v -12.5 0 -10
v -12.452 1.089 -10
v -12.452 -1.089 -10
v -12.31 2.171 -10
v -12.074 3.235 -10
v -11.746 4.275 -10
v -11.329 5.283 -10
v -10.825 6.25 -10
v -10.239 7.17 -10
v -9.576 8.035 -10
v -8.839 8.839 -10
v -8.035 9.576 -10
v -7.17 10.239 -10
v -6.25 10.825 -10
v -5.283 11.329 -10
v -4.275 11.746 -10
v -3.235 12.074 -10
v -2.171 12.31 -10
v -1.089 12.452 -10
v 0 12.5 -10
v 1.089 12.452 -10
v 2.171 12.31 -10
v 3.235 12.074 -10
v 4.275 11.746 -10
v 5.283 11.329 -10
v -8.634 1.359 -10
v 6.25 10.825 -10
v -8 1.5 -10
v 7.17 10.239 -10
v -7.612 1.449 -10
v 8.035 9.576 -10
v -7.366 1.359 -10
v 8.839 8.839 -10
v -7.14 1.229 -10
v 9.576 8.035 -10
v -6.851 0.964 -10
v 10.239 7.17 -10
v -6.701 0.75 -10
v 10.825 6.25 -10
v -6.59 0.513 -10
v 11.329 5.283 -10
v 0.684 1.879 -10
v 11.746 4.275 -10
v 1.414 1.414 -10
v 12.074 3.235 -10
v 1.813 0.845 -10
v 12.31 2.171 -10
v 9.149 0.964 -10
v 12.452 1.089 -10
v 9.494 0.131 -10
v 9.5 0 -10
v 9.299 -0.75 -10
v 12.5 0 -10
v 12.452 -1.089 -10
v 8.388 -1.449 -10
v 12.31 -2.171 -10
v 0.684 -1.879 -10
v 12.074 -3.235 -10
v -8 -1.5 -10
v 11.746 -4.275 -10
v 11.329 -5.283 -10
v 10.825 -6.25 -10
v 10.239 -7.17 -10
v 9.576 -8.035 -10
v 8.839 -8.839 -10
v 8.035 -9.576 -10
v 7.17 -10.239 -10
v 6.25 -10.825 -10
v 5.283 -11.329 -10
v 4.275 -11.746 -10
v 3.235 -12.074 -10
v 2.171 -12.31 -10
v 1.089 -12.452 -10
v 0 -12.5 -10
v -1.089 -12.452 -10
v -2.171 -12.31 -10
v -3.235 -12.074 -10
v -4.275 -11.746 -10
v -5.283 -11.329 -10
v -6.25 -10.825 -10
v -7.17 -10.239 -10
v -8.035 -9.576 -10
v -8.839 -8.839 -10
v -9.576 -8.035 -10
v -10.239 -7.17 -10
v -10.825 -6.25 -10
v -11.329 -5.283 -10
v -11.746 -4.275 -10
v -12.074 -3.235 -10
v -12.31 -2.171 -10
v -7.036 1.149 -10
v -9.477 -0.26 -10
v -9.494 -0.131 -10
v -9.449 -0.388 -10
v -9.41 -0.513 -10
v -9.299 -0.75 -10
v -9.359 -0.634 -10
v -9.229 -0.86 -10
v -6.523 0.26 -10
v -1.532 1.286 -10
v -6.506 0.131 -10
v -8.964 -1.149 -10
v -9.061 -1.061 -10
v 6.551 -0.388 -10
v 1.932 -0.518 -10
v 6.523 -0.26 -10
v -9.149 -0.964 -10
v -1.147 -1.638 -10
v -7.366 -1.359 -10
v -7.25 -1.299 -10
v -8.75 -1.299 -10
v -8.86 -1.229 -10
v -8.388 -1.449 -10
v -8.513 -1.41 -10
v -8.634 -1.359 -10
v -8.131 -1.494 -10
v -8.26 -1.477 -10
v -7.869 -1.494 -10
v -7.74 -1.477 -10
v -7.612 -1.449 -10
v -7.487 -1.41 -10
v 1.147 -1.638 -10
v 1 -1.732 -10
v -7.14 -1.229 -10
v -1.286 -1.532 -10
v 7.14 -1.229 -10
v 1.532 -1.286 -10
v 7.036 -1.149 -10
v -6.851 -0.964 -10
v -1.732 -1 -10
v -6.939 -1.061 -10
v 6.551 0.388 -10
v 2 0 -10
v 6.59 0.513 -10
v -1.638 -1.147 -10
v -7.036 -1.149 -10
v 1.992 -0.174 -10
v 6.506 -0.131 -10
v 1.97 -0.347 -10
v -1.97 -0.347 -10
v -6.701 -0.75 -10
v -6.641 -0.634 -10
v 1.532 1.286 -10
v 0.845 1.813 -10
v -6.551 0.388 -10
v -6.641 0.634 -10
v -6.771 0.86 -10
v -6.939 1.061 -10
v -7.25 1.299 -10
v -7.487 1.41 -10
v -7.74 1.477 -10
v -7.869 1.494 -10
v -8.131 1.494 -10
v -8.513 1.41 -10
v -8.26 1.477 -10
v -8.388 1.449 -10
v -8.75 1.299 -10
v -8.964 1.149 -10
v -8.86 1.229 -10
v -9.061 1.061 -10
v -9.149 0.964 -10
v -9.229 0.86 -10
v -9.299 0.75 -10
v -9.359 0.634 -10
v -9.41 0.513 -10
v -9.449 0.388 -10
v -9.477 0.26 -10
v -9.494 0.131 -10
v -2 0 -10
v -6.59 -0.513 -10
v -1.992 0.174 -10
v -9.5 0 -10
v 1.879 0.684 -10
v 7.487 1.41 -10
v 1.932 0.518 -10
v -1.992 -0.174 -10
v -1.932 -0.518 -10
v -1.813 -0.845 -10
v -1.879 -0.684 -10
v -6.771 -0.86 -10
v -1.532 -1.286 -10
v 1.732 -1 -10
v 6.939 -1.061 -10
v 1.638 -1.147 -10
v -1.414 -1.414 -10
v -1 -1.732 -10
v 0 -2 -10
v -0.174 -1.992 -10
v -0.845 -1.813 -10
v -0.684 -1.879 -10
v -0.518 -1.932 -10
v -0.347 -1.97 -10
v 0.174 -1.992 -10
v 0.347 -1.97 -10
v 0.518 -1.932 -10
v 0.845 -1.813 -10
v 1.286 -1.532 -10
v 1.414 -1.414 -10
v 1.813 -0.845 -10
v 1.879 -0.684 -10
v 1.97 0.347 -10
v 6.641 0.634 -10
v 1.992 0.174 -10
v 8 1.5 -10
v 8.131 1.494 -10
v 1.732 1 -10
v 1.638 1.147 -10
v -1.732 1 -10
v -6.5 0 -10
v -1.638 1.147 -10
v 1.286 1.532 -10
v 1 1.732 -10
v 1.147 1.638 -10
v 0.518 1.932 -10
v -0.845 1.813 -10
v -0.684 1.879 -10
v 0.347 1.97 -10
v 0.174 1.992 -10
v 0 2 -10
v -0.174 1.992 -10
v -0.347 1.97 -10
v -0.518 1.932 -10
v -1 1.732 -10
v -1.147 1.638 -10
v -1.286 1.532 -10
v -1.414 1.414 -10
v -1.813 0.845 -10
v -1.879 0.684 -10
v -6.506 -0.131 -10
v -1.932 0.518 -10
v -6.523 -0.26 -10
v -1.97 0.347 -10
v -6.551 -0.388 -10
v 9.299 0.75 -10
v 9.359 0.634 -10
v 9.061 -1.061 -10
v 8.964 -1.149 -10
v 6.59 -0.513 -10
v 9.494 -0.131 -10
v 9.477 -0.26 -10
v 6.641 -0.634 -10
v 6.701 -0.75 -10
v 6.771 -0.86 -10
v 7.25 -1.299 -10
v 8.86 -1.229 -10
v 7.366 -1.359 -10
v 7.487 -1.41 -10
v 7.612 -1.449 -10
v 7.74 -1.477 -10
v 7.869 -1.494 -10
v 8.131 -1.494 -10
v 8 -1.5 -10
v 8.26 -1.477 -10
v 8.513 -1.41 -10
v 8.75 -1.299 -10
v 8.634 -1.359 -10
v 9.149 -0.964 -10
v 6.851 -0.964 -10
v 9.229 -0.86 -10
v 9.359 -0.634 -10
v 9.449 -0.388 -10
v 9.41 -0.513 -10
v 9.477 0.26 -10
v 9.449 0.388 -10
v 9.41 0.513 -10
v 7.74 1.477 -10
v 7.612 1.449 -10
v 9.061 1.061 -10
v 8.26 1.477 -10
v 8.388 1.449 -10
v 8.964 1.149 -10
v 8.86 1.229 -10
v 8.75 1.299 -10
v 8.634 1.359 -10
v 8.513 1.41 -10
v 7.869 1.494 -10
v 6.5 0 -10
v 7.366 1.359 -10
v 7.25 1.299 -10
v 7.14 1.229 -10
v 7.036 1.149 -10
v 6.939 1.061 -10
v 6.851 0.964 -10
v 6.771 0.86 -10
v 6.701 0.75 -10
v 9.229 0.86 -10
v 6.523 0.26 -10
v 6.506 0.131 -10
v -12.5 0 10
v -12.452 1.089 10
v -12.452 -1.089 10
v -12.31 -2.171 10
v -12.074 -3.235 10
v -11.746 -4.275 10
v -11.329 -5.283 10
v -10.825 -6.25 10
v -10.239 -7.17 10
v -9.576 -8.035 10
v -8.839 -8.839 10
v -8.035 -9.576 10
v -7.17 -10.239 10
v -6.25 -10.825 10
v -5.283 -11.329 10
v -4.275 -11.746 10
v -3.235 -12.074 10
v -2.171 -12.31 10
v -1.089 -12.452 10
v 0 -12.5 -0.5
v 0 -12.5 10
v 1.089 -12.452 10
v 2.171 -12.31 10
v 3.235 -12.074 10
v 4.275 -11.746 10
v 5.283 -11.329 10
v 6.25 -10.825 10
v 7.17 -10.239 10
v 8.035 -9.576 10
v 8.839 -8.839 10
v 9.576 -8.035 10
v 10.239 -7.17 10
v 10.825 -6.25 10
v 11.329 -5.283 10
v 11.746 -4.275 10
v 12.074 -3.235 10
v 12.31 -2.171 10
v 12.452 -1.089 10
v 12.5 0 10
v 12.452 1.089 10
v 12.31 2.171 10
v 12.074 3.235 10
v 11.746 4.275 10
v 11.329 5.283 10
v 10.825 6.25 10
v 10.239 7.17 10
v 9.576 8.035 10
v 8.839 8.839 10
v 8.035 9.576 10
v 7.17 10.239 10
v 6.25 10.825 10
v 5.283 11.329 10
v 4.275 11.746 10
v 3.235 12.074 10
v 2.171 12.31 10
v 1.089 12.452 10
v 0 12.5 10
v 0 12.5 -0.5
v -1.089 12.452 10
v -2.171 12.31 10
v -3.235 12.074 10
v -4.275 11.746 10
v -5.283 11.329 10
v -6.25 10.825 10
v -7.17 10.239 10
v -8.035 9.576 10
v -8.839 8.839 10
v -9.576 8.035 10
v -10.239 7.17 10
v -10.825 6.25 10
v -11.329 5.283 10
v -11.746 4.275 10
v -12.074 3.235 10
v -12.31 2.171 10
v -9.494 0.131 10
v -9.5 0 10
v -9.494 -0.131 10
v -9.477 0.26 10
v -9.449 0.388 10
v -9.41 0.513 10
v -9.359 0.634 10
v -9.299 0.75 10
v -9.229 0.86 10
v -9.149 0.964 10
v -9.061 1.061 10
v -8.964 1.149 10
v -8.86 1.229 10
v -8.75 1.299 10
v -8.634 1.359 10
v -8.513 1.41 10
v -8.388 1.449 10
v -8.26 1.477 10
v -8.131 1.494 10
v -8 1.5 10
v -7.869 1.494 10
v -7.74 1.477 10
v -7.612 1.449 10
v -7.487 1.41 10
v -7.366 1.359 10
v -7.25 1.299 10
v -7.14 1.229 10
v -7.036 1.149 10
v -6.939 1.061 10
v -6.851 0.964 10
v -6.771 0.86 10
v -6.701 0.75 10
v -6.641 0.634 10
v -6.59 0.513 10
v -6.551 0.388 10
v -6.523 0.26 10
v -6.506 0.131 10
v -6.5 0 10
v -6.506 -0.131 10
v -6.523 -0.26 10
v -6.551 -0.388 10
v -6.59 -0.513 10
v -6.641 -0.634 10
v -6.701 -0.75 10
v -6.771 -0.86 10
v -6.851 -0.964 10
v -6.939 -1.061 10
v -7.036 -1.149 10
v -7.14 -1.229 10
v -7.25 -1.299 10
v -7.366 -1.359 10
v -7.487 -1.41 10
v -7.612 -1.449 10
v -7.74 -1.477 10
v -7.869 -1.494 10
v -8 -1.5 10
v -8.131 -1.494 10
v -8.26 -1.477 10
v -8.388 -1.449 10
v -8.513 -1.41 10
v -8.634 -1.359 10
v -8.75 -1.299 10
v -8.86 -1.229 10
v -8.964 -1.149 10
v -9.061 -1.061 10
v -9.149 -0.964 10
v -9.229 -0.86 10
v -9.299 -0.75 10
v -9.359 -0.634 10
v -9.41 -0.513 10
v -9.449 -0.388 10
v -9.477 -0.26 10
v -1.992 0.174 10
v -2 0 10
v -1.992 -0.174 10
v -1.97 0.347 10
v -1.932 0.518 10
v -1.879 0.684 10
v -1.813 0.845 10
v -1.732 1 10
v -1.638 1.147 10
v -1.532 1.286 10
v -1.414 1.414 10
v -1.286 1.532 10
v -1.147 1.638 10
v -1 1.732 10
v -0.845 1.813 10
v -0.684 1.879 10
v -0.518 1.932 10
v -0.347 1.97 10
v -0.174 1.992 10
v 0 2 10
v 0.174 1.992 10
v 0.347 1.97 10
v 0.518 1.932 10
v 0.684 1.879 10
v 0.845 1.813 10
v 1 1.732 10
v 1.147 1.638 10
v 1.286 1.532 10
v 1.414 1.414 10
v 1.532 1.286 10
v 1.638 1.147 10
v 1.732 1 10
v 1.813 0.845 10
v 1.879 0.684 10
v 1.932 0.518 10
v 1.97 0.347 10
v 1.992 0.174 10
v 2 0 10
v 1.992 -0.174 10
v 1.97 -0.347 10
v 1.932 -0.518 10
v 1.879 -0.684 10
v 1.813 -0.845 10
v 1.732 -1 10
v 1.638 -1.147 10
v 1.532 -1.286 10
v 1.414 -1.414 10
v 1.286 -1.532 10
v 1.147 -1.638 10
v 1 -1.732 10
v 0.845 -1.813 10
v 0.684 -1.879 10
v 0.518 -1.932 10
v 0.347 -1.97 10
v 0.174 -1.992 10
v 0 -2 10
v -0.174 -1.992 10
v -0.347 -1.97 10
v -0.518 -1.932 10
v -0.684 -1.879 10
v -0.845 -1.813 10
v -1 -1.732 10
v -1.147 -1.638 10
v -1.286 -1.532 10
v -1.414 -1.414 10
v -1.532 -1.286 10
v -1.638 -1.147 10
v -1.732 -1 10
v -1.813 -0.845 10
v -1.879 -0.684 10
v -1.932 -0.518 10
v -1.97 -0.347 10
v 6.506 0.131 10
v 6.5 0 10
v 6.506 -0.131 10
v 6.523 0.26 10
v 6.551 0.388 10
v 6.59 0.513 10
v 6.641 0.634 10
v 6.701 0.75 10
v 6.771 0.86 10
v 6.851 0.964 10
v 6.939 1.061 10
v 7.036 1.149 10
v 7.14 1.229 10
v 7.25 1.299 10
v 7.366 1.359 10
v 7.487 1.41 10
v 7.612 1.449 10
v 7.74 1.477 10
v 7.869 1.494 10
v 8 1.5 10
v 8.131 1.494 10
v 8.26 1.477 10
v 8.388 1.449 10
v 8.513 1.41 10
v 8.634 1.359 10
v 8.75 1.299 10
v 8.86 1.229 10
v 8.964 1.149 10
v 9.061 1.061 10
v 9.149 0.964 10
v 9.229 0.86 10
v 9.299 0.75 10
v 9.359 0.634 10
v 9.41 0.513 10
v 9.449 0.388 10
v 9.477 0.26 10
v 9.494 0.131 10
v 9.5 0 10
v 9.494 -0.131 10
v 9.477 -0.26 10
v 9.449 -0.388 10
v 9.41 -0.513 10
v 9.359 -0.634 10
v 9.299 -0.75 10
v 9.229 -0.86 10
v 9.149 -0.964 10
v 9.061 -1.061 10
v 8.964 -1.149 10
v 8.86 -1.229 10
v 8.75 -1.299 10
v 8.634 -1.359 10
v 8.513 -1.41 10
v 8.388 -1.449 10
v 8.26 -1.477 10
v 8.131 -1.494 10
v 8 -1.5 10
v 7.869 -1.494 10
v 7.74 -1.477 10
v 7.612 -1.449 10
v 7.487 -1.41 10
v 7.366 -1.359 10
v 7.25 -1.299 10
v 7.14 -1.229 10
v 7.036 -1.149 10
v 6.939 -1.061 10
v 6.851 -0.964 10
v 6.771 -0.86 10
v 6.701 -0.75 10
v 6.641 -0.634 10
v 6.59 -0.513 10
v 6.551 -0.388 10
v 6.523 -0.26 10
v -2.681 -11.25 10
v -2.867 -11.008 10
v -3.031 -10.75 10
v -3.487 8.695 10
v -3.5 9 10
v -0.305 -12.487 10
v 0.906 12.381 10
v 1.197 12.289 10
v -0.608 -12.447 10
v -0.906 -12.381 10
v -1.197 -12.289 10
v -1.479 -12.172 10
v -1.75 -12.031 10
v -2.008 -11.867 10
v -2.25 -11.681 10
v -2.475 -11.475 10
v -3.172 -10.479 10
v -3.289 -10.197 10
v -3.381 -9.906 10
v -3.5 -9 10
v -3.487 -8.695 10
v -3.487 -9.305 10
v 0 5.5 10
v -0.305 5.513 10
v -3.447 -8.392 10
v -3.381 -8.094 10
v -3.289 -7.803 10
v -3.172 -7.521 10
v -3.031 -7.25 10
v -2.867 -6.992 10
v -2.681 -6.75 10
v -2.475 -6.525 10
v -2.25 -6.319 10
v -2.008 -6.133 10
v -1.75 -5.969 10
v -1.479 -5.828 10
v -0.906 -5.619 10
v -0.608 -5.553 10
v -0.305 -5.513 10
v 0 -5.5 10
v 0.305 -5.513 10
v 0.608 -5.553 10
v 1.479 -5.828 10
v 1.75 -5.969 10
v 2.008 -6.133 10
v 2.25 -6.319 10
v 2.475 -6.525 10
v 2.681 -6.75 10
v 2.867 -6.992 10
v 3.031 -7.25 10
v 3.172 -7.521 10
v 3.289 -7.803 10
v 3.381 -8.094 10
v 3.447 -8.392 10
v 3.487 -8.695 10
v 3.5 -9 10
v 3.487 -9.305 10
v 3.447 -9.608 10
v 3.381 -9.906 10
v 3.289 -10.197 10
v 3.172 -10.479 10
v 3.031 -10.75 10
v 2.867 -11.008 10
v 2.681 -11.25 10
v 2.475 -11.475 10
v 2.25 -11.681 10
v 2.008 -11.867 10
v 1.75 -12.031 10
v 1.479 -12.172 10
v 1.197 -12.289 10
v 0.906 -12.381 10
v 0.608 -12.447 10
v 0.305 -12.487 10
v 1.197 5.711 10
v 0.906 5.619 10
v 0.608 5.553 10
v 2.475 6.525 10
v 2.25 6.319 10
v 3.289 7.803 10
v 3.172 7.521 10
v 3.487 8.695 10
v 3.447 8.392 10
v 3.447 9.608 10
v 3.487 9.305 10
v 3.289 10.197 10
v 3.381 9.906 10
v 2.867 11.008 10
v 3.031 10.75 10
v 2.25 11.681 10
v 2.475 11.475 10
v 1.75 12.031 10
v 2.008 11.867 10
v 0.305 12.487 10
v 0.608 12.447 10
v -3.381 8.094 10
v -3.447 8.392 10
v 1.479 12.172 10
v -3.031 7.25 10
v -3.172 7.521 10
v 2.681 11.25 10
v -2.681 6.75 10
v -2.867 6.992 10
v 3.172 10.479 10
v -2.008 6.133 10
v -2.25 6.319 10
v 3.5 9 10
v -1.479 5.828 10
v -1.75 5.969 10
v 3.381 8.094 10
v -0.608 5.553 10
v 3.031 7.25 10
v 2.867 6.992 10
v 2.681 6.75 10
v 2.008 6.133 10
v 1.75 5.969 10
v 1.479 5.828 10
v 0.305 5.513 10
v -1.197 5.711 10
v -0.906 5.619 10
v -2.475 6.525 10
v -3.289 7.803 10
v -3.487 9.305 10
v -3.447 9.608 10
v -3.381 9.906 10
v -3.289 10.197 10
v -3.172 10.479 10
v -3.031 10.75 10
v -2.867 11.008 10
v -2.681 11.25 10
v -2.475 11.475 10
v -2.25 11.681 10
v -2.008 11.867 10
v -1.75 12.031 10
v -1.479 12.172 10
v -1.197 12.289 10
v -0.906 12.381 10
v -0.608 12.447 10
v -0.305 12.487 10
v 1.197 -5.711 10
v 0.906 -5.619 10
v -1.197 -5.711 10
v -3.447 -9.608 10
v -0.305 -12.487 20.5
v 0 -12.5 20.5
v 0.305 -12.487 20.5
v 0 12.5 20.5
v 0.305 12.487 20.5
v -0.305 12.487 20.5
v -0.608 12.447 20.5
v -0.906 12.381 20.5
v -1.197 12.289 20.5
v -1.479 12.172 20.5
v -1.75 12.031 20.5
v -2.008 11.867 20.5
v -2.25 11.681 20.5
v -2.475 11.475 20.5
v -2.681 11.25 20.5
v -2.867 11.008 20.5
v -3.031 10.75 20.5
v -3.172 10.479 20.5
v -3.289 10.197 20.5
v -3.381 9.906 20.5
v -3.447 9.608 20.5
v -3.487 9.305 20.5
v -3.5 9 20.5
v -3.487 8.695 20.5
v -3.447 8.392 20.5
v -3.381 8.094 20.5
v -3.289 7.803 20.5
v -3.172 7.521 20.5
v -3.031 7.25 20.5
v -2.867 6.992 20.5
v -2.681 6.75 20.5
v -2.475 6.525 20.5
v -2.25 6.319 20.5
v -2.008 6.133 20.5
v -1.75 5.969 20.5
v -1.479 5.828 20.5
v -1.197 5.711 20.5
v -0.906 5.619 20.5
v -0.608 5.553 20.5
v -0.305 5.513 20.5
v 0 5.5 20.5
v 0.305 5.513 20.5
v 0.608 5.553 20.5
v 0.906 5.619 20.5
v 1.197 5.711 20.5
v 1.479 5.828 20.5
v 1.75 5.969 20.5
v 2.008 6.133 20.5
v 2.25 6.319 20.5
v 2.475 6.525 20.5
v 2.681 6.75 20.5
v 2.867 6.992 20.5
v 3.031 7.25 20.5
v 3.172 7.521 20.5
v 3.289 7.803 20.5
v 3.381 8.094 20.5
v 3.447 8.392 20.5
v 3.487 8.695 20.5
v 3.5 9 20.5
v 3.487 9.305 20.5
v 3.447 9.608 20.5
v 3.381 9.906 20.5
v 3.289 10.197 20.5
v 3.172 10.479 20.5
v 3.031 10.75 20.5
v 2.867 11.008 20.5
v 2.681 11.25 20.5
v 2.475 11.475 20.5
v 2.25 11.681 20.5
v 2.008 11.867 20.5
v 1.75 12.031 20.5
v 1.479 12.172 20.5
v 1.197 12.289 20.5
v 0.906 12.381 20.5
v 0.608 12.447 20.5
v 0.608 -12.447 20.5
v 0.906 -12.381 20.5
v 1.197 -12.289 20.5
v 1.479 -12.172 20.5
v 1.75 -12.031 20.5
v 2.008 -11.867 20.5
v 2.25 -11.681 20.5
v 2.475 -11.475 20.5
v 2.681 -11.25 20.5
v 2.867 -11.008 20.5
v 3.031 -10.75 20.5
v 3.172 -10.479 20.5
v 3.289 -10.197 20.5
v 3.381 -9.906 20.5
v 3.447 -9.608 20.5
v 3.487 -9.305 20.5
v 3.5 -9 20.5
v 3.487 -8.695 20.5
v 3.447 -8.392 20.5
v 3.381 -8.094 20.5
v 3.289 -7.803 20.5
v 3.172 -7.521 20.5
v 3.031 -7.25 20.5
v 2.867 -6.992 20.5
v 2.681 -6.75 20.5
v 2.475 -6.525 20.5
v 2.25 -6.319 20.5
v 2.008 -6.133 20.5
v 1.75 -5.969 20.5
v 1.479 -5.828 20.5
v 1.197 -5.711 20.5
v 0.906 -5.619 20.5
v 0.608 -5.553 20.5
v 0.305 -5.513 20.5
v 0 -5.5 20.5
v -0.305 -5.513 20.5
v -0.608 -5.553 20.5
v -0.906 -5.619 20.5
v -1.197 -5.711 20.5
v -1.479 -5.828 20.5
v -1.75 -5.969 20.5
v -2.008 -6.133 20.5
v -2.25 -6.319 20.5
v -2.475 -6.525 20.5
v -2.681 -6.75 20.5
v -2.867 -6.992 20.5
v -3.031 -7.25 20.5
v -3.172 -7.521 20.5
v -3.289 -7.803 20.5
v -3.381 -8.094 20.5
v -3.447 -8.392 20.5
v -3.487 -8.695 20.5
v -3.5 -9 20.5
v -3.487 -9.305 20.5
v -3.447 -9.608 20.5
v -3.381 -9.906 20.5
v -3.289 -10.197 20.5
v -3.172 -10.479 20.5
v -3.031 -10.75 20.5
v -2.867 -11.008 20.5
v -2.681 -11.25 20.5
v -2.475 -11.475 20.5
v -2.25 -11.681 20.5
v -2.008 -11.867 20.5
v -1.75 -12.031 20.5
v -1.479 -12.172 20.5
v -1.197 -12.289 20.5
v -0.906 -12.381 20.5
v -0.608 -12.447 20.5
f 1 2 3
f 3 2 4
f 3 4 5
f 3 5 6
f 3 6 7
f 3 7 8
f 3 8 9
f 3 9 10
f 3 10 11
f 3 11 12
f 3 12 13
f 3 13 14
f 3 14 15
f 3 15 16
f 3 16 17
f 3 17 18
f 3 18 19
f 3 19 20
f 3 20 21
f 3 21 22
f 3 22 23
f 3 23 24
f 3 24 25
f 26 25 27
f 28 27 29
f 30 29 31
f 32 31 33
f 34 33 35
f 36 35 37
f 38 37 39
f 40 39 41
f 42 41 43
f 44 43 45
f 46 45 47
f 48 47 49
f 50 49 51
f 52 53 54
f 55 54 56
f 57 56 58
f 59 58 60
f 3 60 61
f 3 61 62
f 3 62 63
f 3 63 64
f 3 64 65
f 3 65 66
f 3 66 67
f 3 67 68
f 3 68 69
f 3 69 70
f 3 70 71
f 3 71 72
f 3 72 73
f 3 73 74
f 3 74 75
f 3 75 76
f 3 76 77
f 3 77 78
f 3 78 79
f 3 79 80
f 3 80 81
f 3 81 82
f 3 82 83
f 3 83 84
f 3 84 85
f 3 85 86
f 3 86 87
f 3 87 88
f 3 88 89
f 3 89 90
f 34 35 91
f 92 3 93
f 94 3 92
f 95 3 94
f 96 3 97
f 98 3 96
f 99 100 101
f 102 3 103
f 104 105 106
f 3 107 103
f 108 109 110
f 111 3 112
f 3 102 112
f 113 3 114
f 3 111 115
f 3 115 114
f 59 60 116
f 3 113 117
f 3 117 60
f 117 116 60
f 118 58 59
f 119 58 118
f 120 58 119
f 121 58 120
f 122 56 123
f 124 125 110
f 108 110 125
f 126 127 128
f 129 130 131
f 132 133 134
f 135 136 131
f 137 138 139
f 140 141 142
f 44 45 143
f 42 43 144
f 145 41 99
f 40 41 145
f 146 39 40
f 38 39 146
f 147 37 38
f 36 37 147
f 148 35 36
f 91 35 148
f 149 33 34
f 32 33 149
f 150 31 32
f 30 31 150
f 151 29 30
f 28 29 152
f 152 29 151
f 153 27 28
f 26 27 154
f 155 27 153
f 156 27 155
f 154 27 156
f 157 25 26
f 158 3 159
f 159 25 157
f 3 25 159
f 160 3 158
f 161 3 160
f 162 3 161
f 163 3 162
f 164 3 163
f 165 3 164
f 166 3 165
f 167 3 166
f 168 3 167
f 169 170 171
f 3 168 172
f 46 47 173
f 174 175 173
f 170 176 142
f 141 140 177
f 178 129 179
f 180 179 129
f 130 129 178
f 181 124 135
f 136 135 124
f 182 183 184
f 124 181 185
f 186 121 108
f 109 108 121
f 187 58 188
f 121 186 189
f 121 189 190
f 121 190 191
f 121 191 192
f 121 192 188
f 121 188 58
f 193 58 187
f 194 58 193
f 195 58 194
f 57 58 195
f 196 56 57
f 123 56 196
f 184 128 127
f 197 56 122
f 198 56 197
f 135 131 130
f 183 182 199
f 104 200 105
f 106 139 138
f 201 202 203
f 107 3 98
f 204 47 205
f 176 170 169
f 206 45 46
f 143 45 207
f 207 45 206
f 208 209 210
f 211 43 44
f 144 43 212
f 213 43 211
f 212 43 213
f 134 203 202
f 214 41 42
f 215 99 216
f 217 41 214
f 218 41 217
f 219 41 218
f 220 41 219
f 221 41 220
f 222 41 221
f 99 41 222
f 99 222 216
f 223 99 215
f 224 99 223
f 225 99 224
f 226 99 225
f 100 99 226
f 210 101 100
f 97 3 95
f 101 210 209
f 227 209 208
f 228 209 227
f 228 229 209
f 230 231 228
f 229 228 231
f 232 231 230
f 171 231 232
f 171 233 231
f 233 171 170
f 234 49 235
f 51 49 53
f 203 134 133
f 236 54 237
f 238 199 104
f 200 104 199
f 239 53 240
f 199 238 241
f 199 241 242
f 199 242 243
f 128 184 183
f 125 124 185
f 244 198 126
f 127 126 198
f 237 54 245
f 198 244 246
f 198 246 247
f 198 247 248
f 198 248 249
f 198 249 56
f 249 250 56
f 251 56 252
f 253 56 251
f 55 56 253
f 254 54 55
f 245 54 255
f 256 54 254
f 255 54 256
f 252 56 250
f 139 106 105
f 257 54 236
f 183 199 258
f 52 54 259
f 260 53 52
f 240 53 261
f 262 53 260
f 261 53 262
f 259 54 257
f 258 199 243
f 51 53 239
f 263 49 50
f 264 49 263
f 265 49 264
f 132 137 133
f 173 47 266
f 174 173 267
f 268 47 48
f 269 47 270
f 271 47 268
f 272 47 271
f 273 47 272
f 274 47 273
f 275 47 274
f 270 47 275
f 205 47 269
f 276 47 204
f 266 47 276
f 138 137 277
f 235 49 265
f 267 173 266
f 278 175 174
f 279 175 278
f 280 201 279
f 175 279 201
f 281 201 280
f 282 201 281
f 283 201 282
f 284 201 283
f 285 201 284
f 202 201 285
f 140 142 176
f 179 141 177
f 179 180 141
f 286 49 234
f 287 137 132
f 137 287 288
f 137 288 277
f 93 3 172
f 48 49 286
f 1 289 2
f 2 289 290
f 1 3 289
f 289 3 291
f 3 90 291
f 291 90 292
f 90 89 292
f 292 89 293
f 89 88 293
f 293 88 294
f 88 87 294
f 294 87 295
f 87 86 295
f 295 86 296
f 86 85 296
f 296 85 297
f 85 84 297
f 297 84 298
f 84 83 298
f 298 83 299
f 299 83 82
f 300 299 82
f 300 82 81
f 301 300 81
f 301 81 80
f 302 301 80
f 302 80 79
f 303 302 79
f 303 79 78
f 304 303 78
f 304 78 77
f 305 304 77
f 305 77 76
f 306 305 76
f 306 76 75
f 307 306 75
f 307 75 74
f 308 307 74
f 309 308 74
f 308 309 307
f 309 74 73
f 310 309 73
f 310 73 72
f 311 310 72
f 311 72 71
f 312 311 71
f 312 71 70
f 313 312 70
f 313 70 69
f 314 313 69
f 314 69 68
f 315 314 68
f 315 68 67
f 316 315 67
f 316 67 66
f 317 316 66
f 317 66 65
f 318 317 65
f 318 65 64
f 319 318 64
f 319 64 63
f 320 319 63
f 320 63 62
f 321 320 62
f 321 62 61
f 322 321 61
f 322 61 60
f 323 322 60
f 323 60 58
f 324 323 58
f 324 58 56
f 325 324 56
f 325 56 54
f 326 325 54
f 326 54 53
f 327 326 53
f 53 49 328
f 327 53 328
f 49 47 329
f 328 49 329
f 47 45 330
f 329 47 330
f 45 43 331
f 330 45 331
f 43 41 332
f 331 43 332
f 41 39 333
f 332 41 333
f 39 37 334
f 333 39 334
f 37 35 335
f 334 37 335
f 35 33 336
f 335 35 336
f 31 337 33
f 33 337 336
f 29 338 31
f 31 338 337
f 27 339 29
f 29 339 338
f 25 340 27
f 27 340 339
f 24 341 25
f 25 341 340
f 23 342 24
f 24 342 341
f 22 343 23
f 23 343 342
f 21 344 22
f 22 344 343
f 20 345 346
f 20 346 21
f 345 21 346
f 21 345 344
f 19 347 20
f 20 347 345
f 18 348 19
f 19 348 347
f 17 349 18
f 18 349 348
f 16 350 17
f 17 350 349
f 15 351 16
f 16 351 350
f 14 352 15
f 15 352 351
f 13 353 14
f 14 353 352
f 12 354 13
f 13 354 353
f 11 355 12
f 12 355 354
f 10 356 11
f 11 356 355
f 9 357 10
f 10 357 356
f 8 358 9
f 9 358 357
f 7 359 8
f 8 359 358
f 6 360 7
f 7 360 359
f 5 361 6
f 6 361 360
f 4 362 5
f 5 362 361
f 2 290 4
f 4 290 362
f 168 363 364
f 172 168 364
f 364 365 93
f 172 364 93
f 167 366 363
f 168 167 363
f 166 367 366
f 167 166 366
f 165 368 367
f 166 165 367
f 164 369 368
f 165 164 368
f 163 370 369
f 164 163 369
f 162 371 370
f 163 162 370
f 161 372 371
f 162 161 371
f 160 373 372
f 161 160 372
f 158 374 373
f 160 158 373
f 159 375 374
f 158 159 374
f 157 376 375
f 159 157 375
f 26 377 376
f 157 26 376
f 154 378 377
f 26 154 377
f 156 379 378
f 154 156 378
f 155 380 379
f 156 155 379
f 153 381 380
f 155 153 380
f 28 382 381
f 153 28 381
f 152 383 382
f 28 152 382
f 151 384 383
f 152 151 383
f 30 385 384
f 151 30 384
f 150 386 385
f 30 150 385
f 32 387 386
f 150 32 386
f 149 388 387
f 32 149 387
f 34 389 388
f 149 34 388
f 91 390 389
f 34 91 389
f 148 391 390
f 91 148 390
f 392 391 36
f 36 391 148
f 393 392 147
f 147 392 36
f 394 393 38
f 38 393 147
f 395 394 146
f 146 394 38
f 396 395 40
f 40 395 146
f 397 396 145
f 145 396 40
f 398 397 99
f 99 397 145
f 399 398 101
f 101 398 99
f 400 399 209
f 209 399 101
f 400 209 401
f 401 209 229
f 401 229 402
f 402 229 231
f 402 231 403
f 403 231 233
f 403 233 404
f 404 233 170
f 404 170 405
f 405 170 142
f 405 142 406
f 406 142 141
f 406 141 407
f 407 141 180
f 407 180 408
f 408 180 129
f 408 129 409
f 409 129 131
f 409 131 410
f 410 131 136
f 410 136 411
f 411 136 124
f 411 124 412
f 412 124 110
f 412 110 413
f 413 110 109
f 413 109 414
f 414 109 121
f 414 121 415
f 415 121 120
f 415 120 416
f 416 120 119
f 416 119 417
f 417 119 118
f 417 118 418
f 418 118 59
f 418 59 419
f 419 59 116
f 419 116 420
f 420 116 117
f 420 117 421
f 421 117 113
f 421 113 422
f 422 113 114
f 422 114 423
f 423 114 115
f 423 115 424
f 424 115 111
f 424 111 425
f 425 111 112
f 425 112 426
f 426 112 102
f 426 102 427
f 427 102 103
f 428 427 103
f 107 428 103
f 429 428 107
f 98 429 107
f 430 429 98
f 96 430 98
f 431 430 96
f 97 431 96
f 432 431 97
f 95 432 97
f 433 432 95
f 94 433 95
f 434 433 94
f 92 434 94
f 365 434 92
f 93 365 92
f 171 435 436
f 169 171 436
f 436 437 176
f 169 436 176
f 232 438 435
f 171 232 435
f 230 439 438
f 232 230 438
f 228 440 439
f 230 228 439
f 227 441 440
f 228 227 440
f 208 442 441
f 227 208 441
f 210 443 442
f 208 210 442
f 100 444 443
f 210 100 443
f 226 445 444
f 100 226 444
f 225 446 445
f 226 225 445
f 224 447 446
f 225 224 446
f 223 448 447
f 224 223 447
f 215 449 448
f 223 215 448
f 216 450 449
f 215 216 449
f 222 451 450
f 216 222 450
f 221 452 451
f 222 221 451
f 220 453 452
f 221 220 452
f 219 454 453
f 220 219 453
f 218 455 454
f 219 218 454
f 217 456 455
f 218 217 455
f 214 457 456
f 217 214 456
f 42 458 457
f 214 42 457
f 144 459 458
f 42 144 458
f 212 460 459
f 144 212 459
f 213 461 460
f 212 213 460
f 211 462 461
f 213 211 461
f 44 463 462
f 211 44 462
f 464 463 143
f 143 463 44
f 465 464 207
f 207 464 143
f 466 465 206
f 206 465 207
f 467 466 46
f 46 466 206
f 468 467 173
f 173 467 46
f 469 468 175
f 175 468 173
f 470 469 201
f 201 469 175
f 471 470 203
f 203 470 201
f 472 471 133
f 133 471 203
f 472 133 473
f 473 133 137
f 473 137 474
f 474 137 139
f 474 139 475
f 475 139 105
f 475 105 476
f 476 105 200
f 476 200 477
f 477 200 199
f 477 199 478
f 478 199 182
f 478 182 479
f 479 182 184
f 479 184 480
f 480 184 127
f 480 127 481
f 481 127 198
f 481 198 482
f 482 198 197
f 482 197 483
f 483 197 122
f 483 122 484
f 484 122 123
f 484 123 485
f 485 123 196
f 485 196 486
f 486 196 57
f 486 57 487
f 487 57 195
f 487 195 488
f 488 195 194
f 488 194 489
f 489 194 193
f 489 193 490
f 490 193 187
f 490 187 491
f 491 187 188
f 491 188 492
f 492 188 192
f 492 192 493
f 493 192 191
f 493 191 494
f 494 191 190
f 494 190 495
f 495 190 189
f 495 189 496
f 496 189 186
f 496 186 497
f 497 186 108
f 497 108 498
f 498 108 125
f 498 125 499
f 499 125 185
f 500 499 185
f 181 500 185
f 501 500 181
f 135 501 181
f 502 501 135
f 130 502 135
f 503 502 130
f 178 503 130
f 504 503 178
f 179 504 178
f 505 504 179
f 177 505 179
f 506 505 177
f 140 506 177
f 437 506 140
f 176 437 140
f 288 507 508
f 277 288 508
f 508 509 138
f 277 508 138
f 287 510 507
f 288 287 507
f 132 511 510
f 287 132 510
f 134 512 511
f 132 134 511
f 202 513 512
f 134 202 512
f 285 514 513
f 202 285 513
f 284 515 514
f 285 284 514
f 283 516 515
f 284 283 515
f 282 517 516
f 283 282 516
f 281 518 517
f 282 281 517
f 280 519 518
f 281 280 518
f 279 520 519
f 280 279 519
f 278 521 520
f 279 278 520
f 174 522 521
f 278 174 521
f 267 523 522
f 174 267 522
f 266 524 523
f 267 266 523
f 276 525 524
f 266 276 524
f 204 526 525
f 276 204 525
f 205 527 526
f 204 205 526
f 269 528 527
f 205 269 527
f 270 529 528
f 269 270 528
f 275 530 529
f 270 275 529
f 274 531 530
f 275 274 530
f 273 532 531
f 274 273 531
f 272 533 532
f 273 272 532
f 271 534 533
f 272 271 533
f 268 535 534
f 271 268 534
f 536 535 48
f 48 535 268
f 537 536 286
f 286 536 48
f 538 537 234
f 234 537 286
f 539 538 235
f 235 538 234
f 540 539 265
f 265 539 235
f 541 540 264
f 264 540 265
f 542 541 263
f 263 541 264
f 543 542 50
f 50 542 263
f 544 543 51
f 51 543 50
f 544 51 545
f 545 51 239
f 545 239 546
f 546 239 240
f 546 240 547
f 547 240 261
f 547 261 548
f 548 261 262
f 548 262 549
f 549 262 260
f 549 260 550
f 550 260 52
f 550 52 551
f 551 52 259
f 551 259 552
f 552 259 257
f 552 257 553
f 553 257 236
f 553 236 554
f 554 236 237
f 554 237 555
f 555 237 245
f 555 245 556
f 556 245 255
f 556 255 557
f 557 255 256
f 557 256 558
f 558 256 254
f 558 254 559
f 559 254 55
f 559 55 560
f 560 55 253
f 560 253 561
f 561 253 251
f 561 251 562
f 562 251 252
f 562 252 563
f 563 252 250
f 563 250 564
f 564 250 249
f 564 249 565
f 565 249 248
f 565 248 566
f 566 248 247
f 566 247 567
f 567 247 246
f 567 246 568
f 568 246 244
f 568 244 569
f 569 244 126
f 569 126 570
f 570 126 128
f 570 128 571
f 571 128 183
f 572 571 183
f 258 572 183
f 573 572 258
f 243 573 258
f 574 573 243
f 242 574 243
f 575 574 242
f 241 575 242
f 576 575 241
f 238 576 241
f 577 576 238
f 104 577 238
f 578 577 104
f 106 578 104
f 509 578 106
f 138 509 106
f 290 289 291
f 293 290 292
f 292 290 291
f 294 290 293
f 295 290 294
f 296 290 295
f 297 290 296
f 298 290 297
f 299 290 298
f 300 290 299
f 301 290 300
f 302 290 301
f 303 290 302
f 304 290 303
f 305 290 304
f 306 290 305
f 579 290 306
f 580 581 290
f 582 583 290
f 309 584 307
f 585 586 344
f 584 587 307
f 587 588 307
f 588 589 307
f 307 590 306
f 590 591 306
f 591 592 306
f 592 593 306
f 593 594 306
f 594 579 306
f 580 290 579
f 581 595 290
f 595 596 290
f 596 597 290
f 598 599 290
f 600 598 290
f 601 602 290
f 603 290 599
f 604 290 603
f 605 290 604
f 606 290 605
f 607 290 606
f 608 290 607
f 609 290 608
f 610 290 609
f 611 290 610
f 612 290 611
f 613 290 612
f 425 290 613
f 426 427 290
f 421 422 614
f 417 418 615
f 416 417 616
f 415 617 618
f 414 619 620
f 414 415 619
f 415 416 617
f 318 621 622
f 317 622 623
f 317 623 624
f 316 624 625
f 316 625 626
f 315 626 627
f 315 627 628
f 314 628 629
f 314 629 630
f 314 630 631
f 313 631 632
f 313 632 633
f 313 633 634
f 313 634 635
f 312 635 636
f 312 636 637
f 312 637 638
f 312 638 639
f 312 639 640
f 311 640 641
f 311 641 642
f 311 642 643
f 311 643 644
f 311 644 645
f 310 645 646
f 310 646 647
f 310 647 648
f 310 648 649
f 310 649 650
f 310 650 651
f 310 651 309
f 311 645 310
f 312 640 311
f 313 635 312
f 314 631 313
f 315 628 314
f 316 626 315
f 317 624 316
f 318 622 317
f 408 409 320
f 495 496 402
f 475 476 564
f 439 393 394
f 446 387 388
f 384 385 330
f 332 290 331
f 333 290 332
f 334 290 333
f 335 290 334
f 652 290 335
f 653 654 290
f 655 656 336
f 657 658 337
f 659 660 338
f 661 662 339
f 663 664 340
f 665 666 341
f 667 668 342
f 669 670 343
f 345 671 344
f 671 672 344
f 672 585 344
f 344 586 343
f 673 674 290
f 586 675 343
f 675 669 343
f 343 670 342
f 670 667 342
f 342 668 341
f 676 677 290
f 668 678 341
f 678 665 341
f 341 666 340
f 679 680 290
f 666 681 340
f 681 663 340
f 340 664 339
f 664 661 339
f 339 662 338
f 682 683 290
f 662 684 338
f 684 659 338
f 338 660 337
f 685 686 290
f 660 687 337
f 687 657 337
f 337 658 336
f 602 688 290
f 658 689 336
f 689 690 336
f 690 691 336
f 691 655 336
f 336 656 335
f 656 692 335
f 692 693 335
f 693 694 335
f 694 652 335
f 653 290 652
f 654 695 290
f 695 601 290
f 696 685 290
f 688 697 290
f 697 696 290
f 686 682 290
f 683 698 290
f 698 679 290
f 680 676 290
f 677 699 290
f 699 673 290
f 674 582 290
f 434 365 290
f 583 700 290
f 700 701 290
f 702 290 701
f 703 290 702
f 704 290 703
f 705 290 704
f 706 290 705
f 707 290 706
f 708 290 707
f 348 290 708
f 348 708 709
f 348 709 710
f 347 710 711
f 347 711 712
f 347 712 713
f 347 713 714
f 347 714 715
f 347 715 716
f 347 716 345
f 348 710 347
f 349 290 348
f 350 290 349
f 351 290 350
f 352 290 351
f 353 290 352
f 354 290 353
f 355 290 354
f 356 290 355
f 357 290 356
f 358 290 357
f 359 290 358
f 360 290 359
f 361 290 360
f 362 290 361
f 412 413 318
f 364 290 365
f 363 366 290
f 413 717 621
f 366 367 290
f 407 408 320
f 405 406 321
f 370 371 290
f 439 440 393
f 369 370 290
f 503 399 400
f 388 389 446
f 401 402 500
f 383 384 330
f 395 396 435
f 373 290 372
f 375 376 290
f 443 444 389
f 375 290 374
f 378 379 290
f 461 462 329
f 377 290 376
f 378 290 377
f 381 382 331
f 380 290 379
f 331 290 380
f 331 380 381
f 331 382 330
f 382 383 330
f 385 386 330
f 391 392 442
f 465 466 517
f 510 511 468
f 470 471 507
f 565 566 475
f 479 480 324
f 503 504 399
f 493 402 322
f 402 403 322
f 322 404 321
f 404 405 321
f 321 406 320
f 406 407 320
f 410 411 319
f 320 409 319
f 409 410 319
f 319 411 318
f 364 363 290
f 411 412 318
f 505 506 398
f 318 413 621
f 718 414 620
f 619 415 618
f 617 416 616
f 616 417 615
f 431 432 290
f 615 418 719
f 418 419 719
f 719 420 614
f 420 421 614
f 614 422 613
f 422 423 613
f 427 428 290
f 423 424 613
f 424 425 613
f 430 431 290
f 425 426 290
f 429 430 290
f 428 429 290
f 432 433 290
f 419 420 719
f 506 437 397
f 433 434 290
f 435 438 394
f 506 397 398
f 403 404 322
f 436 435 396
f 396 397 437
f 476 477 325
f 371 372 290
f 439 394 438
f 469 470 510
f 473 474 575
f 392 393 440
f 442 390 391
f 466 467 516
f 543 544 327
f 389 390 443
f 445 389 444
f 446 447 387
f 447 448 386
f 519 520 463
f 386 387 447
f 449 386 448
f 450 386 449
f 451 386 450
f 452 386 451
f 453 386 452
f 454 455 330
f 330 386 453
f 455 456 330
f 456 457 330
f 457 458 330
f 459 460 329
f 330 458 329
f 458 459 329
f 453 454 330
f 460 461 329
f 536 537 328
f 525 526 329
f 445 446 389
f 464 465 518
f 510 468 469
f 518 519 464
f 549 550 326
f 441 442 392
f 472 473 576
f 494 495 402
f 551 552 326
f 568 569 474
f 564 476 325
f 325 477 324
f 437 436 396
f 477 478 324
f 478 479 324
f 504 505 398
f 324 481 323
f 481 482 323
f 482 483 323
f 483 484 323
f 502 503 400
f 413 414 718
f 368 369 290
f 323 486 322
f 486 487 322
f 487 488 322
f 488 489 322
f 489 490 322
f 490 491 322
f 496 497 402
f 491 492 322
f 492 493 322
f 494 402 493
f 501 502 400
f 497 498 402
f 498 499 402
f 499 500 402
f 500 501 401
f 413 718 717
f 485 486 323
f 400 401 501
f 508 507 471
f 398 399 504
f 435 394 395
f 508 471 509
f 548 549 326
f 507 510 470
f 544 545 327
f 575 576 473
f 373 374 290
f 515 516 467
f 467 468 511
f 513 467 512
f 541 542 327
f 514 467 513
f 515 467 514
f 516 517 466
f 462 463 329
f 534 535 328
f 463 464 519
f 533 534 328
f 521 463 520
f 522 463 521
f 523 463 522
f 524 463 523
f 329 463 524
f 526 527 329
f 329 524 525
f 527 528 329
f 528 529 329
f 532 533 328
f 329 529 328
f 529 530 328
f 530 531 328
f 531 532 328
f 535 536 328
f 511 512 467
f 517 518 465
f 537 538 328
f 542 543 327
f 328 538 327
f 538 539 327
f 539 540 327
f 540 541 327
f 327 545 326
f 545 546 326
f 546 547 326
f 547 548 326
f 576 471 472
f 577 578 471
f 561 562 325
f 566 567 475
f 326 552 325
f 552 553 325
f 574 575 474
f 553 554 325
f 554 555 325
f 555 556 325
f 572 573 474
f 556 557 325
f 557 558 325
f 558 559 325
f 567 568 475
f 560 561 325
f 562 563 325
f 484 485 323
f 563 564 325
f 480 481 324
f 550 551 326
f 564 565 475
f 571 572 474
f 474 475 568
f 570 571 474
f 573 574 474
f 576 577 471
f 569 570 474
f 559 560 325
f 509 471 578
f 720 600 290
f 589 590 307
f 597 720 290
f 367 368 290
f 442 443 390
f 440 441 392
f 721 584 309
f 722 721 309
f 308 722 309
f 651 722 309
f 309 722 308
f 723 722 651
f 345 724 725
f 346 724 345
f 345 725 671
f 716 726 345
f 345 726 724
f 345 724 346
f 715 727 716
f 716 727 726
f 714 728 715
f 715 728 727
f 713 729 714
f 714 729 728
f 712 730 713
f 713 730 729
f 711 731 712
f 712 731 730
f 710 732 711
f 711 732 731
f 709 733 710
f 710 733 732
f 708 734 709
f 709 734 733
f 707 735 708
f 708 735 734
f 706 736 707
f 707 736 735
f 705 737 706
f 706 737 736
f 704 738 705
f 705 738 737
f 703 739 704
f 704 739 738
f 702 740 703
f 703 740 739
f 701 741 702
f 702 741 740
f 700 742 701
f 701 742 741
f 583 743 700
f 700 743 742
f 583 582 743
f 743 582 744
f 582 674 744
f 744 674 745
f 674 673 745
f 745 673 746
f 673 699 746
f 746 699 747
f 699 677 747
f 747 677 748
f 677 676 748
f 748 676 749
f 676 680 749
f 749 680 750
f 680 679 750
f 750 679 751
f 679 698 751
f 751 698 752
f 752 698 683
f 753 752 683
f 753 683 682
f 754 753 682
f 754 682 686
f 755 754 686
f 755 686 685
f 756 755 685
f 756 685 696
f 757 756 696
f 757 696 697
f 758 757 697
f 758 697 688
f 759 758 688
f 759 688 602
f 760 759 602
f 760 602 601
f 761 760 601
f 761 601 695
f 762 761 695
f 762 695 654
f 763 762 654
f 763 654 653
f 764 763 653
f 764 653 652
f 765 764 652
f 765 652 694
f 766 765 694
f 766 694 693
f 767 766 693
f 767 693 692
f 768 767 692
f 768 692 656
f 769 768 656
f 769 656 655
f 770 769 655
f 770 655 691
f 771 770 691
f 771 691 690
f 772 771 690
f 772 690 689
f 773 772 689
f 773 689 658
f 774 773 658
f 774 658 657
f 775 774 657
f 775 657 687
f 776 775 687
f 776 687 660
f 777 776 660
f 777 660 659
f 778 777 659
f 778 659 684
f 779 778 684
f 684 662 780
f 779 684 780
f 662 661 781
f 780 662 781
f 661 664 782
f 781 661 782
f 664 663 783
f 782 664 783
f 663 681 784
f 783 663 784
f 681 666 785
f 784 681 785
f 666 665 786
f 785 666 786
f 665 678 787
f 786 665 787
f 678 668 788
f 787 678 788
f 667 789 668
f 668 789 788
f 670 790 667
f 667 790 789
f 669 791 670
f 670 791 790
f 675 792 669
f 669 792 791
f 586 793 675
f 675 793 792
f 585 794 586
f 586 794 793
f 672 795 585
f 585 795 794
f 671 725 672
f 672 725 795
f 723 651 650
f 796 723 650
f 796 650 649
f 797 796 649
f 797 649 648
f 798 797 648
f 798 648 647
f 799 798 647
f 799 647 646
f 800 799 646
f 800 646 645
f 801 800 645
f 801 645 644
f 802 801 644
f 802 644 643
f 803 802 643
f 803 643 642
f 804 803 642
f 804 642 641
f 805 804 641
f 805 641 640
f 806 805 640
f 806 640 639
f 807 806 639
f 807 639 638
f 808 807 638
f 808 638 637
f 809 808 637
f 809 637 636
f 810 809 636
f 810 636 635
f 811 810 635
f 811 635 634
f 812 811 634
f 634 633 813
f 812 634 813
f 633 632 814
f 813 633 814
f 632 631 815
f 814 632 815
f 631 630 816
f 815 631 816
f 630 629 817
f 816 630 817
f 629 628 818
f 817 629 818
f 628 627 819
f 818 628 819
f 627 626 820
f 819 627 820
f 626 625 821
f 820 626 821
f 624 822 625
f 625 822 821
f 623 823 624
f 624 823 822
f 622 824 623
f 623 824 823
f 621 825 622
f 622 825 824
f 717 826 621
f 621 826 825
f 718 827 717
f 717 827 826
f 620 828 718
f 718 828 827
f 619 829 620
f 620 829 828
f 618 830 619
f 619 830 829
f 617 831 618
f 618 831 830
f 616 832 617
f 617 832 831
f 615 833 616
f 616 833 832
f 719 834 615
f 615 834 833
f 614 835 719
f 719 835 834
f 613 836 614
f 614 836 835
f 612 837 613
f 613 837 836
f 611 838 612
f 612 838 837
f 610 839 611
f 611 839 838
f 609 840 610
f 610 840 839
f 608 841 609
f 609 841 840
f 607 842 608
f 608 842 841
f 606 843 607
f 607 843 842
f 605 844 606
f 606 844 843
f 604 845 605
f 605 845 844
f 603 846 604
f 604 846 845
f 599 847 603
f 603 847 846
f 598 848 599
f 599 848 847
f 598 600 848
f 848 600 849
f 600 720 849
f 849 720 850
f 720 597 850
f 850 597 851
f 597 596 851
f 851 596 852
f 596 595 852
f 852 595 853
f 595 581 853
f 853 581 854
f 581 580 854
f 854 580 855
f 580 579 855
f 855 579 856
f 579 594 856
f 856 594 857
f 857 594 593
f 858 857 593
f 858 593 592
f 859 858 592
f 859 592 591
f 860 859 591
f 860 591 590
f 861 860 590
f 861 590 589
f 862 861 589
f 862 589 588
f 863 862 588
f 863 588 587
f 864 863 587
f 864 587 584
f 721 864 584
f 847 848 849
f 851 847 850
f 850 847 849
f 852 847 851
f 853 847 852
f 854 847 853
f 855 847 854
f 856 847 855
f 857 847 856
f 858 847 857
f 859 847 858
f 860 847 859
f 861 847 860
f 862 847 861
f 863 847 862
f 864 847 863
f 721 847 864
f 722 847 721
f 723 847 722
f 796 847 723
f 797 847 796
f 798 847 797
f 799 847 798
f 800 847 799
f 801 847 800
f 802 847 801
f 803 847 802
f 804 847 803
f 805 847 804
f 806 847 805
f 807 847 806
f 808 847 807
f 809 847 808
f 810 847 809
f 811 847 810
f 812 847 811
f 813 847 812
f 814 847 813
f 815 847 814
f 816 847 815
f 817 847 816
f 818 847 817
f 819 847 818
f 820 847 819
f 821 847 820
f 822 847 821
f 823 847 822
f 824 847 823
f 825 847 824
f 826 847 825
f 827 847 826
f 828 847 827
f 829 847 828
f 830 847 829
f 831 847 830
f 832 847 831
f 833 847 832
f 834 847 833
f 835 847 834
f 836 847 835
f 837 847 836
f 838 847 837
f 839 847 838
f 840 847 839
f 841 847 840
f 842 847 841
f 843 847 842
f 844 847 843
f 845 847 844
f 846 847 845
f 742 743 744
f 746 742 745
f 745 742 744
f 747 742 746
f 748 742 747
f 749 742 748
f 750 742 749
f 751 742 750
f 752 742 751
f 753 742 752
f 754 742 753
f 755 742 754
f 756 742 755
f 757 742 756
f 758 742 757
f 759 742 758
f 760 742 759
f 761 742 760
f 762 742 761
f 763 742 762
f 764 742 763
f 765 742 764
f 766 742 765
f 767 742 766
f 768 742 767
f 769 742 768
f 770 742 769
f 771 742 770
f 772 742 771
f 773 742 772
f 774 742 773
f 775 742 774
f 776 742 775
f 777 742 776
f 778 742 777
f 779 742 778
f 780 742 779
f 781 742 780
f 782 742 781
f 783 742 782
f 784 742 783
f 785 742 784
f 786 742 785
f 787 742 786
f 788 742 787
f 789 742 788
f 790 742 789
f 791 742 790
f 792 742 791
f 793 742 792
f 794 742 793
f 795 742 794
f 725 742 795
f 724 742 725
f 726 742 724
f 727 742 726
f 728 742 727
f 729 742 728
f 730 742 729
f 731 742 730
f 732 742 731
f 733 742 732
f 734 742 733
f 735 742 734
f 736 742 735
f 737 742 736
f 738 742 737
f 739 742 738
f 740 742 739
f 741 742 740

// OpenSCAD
/*
translate([0,0,-23.25])  rotate([0,0,-90])
difference()
{
translate([0,0,34])  cylinder(r=8.5,h=21.5,center=true);
difference()
{
translate([0,0,34])  cylinder(r=8.51,h=30,center=true);
translate([-10,5.5,23]) cube([20,3,30]);
}
}
*/




difference()
{
	cylinder(r=12.5,h=20,center=true,$fa=5, $fs=0.1);
	cylinder(r=2,h=21,center=true,$fa=5, $fs=0.1);
	translate([8,0,0]) cylinder(r=1.5,h=21,center=true, $fa=5, $fs=0.1);
	translate([-8,0,0]) cylinder(r=1.5,h=21,center=true, $fa=5, $fs=0.1);
}

rotate ([0,0,90]) translate([-9,0,10]) cylinder(r=3.5,h=21,center=true, $fa=5, $fs=0.1);
rotate ([0,0,90]) translate([9,0,10]) cylinder(r=3.5,h=21,center=true, $fa=5, $fs=0.1);
